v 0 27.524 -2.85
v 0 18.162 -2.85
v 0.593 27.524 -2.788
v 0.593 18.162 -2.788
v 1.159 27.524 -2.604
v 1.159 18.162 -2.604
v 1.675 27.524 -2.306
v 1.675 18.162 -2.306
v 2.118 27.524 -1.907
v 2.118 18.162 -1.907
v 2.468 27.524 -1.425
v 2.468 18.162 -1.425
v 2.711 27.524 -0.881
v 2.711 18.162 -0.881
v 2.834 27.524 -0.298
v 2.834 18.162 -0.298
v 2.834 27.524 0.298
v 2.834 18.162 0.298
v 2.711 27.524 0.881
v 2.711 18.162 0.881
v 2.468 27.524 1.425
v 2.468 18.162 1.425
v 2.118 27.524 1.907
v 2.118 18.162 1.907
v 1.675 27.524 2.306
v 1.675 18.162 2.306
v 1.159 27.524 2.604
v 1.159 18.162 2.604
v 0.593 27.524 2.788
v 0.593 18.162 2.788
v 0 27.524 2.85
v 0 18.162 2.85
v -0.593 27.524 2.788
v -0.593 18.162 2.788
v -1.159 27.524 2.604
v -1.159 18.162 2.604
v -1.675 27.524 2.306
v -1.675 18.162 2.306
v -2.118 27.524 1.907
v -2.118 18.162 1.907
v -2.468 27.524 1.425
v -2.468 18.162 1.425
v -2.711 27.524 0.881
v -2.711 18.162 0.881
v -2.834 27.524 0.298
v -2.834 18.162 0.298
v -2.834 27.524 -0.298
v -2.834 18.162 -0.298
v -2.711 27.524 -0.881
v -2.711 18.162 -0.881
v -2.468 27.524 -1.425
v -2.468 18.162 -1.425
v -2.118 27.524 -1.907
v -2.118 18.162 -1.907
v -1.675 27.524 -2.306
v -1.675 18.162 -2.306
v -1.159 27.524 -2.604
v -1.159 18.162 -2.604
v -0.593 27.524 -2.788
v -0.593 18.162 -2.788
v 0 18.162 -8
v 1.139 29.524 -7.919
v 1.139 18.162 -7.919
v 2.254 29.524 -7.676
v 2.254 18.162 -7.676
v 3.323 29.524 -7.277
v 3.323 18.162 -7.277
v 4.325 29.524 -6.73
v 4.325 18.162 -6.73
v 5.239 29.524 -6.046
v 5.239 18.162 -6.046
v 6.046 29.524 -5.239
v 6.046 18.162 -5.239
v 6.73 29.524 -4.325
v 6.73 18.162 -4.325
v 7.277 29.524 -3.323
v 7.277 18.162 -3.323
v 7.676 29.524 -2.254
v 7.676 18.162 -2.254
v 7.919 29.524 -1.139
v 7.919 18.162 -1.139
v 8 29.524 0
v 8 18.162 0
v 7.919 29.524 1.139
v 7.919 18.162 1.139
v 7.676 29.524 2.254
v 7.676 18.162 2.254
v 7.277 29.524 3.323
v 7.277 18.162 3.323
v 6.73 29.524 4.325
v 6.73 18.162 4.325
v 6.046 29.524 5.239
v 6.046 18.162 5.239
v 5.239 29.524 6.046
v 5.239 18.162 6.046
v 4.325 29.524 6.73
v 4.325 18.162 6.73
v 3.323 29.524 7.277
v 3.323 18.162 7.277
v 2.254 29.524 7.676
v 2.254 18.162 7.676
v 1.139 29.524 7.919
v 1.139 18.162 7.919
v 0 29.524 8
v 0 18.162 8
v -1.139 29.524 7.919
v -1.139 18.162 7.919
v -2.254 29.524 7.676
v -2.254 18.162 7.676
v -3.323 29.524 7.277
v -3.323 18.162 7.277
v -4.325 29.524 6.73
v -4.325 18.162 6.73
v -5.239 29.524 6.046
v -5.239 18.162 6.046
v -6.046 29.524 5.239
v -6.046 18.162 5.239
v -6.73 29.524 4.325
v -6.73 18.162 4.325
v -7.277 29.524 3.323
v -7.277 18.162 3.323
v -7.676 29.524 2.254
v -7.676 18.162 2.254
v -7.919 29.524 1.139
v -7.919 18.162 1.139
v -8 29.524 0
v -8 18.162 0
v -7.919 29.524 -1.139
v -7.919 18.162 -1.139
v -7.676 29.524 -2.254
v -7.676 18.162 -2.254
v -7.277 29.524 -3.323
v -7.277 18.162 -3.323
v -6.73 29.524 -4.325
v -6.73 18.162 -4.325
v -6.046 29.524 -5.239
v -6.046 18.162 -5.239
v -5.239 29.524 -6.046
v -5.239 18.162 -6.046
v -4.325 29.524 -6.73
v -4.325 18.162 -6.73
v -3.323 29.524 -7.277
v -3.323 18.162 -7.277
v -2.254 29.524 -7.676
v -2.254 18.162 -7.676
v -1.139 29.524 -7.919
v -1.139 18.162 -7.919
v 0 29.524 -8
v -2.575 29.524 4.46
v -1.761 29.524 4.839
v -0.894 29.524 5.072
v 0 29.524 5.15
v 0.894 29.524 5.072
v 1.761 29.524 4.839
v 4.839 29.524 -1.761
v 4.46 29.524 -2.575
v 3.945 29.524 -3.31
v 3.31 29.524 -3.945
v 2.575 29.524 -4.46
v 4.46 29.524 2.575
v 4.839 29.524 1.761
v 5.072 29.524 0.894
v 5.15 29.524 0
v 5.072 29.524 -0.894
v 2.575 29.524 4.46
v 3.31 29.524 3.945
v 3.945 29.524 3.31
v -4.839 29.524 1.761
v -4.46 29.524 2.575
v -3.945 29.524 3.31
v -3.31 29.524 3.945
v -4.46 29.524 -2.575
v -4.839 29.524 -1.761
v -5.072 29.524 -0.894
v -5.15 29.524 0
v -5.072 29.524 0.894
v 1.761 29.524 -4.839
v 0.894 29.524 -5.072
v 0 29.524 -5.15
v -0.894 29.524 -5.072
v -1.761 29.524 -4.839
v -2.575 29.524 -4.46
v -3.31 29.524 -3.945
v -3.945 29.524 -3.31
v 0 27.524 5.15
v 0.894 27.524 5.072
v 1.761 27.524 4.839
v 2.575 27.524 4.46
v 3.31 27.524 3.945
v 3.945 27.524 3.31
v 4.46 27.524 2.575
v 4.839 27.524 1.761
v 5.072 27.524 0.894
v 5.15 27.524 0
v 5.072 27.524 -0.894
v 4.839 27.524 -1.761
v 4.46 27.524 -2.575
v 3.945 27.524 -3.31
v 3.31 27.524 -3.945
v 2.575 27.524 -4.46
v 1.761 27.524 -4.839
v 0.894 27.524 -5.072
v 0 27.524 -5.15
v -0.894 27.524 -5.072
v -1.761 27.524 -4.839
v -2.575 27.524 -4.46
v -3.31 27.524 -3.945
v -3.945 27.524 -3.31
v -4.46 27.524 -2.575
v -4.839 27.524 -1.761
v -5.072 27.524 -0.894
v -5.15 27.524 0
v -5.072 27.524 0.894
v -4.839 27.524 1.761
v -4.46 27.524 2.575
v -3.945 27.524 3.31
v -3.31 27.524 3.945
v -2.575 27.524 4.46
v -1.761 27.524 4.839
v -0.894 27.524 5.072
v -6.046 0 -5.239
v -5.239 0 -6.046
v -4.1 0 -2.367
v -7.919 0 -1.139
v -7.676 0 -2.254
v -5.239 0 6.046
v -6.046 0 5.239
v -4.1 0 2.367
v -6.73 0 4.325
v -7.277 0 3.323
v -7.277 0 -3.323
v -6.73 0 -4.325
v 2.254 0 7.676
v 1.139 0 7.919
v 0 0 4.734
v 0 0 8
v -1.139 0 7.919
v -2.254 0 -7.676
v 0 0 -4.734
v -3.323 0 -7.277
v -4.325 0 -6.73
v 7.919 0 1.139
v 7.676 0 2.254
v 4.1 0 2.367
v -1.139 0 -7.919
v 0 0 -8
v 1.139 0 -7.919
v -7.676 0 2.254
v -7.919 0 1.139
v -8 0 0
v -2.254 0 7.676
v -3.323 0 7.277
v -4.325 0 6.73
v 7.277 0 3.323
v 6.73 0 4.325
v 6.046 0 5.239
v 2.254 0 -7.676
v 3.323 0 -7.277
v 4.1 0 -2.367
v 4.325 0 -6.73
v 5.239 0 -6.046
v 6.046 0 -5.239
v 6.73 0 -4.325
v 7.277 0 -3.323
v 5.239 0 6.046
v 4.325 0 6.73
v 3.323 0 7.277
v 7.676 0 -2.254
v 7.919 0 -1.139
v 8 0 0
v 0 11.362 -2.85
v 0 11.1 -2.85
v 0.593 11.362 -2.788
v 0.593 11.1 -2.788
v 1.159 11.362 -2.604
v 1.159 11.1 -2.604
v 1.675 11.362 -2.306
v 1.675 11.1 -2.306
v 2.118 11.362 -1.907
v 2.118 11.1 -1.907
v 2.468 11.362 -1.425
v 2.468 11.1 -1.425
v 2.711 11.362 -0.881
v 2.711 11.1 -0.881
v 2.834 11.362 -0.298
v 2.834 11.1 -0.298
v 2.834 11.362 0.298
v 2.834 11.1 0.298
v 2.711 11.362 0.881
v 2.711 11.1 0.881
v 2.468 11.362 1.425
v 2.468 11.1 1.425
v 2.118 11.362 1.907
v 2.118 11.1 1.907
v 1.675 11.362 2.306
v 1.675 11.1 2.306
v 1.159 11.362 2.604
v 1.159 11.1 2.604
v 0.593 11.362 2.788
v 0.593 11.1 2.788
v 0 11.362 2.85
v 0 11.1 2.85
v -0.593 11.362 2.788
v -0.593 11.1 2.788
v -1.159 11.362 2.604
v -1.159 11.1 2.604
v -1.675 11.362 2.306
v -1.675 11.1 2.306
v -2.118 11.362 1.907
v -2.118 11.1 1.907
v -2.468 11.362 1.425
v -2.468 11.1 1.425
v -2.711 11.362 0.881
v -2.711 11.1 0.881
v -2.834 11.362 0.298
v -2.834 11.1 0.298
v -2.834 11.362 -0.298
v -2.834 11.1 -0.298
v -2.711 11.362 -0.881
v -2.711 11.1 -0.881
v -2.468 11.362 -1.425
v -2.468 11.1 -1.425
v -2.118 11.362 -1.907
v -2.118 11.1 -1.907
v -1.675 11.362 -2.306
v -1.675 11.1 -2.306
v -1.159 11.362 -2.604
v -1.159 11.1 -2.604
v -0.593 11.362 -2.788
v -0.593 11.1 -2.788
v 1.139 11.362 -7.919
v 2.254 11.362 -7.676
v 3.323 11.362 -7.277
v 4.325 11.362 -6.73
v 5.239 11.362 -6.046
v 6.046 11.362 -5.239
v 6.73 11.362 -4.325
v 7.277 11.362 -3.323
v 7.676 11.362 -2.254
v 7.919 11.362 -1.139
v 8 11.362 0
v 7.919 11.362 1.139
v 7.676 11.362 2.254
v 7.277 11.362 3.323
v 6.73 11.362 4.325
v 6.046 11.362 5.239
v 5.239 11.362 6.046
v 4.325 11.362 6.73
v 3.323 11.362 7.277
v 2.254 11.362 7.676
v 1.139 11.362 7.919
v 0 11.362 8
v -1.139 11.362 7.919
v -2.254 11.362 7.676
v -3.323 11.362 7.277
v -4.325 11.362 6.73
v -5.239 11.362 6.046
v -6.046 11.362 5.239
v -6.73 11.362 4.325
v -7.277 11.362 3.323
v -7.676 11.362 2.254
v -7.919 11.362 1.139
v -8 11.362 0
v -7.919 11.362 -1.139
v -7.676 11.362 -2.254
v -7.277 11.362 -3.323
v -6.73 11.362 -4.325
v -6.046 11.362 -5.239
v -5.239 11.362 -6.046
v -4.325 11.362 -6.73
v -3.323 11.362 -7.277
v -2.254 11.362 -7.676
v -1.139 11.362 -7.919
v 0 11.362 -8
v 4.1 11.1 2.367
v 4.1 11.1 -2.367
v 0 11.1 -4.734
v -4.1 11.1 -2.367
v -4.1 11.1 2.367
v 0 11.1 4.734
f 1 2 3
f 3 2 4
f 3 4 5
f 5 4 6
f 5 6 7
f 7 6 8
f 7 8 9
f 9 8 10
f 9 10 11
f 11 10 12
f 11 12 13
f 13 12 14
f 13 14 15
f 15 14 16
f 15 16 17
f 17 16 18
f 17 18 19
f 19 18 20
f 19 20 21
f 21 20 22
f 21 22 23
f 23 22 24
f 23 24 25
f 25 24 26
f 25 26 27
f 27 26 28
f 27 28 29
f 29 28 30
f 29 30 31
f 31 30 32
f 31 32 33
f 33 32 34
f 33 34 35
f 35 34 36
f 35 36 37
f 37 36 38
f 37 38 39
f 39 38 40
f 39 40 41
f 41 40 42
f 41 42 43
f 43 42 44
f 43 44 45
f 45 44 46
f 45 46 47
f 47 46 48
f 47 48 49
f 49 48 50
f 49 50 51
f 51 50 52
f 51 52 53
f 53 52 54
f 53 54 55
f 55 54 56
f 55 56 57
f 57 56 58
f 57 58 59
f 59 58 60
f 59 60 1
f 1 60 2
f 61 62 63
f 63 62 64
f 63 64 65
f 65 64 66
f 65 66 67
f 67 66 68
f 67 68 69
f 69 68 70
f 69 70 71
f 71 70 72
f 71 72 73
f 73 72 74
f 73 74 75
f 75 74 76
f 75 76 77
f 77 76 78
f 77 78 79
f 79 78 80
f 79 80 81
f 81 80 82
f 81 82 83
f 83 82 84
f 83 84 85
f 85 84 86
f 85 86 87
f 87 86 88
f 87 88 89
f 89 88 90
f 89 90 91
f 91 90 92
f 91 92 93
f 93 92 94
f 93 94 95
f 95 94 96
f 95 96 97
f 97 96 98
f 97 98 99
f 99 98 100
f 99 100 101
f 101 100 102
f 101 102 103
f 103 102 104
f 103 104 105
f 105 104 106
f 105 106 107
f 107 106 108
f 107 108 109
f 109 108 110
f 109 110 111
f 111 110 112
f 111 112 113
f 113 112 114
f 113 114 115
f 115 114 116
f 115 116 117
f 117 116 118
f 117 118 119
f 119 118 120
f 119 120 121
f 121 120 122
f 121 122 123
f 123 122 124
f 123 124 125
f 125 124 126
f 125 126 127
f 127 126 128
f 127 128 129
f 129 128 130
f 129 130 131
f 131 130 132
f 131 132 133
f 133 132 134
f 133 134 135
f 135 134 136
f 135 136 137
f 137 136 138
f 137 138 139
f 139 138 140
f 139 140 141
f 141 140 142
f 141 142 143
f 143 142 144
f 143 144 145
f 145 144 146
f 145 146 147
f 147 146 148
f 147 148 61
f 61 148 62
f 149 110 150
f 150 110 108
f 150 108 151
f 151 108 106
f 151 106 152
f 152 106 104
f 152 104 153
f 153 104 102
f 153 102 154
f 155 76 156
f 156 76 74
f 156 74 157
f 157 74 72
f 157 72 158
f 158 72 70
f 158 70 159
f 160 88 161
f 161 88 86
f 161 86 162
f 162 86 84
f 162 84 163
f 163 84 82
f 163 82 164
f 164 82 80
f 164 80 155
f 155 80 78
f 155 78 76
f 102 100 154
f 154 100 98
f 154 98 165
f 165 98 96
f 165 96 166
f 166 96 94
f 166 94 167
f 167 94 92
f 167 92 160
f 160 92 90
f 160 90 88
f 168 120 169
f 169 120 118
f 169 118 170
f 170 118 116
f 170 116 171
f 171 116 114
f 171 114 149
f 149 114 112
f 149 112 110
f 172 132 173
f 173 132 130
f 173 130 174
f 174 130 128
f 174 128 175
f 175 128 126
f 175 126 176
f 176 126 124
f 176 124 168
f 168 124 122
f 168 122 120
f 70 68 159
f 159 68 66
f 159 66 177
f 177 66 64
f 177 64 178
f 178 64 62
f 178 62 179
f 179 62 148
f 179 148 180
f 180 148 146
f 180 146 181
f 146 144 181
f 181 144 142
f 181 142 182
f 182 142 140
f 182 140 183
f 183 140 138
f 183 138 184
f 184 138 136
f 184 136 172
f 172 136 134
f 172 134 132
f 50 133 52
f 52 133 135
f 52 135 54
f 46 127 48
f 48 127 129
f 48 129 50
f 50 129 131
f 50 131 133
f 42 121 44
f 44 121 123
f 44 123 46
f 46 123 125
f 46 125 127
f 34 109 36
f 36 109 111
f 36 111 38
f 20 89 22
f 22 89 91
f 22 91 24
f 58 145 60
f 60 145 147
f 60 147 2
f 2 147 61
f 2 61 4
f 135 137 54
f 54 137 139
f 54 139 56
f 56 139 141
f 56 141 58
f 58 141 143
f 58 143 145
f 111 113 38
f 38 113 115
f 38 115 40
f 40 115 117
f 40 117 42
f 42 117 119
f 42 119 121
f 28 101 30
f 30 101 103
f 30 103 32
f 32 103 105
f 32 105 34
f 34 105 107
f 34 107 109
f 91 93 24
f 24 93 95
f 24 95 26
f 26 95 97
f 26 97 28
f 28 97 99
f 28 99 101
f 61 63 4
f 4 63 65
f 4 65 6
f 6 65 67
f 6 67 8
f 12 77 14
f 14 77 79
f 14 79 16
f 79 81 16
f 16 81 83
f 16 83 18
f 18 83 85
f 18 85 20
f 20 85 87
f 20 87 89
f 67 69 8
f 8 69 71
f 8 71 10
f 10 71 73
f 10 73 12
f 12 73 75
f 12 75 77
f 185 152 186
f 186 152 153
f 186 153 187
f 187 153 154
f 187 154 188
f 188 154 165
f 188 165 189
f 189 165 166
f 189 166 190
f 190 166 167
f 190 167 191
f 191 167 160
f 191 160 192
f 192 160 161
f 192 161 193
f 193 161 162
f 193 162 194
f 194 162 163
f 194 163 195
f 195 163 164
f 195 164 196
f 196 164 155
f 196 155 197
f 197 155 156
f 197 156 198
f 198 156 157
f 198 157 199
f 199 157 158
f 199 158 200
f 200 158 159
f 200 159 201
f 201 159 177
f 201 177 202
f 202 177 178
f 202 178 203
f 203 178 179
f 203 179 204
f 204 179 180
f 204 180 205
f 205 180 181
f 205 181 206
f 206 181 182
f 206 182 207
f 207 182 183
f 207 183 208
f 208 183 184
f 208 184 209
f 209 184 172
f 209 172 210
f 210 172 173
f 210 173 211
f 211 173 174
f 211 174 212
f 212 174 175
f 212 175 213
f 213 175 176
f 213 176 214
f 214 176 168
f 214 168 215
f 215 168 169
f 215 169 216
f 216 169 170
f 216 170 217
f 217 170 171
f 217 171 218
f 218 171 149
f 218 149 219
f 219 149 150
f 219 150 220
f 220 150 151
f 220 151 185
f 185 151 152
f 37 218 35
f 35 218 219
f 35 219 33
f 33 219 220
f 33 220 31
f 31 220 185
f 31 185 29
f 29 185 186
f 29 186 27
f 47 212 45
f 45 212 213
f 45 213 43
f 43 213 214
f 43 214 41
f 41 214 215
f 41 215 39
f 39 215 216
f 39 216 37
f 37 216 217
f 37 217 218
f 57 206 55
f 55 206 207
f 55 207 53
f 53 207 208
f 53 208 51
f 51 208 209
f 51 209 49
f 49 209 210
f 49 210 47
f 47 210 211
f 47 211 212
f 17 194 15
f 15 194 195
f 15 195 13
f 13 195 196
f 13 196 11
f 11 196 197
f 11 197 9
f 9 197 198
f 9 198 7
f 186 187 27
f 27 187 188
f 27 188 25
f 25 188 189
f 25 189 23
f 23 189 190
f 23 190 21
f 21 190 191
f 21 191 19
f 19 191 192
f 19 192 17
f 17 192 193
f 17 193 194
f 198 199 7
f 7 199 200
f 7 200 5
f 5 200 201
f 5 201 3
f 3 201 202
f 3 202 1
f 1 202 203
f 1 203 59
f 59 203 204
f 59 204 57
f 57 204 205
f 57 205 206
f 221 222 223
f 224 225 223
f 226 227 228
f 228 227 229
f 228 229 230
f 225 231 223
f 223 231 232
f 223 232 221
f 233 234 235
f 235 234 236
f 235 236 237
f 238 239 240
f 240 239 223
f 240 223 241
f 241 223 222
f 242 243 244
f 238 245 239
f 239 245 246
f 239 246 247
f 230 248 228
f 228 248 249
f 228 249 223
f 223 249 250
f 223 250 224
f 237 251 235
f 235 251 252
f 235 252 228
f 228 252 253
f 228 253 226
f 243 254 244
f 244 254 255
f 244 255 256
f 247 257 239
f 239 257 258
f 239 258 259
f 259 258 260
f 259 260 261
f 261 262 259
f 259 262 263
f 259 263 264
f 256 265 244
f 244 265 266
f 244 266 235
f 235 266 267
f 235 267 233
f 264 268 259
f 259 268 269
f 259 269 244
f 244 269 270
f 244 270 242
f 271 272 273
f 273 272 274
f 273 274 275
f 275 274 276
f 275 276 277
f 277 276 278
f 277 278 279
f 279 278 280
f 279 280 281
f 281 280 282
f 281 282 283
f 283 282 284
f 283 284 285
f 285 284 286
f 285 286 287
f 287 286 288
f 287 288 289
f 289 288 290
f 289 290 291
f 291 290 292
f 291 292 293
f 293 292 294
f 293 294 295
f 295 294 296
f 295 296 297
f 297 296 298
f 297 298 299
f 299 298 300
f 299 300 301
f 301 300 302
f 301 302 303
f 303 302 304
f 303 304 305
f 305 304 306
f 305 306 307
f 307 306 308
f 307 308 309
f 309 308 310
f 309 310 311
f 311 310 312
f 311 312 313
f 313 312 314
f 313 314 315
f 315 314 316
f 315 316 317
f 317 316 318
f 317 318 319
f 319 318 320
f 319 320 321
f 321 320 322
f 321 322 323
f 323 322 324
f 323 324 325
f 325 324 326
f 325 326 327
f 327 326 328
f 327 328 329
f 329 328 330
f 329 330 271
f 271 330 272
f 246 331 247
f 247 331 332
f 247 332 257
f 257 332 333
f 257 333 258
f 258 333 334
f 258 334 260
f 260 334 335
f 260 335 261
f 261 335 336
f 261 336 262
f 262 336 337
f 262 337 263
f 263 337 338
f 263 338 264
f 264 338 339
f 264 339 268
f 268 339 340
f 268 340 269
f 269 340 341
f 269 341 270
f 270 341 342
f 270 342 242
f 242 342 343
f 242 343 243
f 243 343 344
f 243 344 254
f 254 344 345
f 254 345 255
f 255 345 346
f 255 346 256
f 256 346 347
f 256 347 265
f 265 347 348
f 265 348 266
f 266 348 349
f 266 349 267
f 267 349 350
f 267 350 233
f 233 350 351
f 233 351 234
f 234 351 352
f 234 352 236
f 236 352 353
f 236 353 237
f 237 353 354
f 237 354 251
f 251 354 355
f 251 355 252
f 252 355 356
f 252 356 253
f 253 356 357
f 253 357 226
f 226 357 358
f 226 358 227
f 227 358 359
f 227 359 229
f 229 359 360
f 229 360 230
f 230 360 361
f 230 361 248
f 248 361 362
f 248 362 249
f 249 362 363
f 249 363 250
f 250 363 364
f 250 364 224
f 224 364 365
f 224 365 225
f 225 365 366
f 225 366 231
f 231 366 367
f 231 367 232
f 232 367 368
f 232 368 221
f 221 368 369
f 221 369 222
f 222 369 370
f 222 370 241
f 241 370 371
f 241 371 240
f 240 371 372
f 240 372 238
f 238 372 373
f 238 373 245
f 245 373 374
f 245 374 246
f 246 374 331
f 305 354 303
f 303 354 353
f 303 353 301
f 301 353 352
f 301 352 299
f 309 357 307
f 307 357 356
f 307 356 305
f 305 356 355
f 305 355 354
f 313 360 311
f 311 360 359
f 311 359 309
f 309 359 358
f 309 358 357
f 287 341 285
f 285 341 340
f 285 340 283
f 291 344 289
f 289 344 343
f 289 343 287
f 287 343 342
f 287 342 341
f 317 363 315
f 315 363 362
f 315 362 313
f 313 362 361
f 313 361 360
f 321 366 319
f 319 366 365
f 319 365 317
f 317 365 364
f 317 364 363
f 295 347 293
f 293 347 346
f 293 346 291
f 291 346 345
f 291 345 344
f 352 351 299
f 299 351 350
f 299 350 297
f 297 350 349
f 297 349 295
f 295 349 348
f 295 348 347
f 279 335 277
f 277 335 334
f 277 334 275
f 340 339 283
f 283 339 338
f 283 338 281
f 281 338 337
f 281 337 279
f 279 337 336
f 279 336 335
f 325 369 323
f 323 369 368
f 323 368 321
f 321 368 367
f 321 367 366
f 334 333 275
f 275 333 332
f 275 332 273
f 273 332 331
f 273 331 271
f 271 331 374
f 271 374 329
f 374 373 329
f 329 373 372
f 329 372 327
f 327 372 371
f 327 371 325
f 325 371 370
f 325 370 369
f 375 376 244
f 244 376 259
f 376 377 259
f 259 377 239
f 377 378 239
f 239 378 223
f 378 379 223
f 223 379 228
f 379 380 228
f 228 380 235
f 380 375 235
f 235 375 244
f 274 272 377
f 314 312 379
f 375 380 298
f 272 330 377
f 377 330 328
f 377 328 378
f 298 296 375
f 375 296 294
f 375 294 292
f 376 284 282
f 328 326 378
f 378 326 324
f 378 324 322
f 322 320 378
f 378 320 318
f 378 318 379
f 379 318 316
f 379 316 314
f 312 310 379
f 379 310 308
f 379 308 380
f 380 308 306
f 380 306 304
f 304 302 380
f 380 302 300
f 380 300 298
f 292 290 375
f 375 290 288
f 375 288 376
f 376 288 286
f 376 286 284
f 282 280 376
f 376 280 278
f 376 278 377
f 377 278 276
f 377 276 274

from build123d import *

# Parameters (mm, degrees)
SKETCH1_R               = 8
BOSS_EXTRUDE1_DEPTH     = 29.524
CUT_EXTRUDE1_DEPTH      = 32.617504266
CUT_EXTRUDE1_DEPTH_BACK = 32.617504266
SKETCH2_W               = 20.4
SKETCH2_H               = 6.8
SKETCH3_R               = 2.85
CUT_EXTRUDE2_DEPTH      = 29.524
SKETCH4_R               = 5.15
CUT_EXTRUDE3_DEPTH      = 2
CUT_EXTRUDE4_DEPTH      = 11.1


with BuildPart() as part:
    # Sketch1 → Boss-Extrude1 (new body)
    with BuildSketch(Plane(origin=(0, 0, 0), x_dir=(1, 0, 0), z_dir=(0, 1, 0))):
        with Locations(Location((0, 0, 0), (0, 0, 270))):
            Circle(SKETCH1_R)
    extrude(amount=BOSS_EXTRUDE1_DEPTH)

    # Sketch2 → Cut-Extrude1 (cut, two sides: drawn at the far end of the back side and taken through both)
    with BuildSketch(Plane.XY.offset(-CUT_EXTRUDE1_DEPTH_BACK)):
        with Locations((0, 14.762)):
            Rectangle(SKETCH2_W, SKETCH2_H)
    extrude(amount=CUT_EXTRUDE1_DEPTH + CUT_EXTRUDE1_DEPTH_BACK, mode=Mode.SUBTRACT)


with BuildPart() as cut_extrude1_piece_1:
    # of the separate pieces the step leaves, piece 1, a body of its own (cut_extrude1_pieces)
    add(part.part.solids().sort_by_distance((0, 0, 8))[0])


with BuildPart() as cut_extrude1_piece_2:
    # of the separate pieces the step leaves, piece 2, a body of its own (cut_extrude1_pieces)
    add(part.part.solids().sort_by_distance((0, 18.162, 8))[0])


with BuildPart() as cut_extrude2_tool:
    # Sketch3 → Cut-Extrude2 (new body)
    with BuildSketch(Plane(origin=(0, 0, 0), x_dir=(1, 0, 0), z_dir=(0, 1, 0))):
        with Locations(Location((0, 0, 0), (0, 0, 270))):
            Circle(SKETCH3_R)
    extrude(amount=CUT_EXTRUDE2_DEPTH)


with BuildPart() as cut_extrude1_piece_1_1:
    add(cut_extrude1_piece_1.part)

    # Cut-Extrude2: cut by cut_extrude2_tool
    add(cut_extrude2_tool.part, mode=Mode.SUBTRACT)

    # Sketch5 → Cut-Extrude4 (cut)
    with BuildSketch(Plane(origin=(0, 0, 0), x_dir=(1, 0, 0), z_dir=(0, 1, 0))):
        Polygon((4.1, -2.367136104), (0, -4.734272207), (-4.1, -2.367136104), (-4.1, 2.367136104), (0, 4.734272207), (4.1, 2.367136104), align=None)
    extrude(amount=CUT_EXTRUDE4_DEPTH, mode=Mode.SUBTRACT)


with BuildPart() as cut_extrude1_piece_2_1:
    add(cut_extrude1_piece_2.part)

    # Cut-Extrude2: cut by cut_extrude2_tool
    add(cut_extrude2_tool.part, mode=Mode.SUBTRACT)

    # Sketch4 → Cut-Extrude3 (cut)
    with BuildSketch(Plane(origin=(0, 29.524, 0), x_dir=(1, 0, 0), z_dir=(0, 1, 0))):
        with Locations(Location((0, 0, 0), (0, 0, 270))):
            Circle(SKETCH4_R)
    extrude(amount=-CUT_EXTRUDE3_DEPTH, mode=Mode.SUBTRACT)


solid = Compound([cut_extrude1_piece_1_1.part, cut_extrude1_piece_2_1.part])
